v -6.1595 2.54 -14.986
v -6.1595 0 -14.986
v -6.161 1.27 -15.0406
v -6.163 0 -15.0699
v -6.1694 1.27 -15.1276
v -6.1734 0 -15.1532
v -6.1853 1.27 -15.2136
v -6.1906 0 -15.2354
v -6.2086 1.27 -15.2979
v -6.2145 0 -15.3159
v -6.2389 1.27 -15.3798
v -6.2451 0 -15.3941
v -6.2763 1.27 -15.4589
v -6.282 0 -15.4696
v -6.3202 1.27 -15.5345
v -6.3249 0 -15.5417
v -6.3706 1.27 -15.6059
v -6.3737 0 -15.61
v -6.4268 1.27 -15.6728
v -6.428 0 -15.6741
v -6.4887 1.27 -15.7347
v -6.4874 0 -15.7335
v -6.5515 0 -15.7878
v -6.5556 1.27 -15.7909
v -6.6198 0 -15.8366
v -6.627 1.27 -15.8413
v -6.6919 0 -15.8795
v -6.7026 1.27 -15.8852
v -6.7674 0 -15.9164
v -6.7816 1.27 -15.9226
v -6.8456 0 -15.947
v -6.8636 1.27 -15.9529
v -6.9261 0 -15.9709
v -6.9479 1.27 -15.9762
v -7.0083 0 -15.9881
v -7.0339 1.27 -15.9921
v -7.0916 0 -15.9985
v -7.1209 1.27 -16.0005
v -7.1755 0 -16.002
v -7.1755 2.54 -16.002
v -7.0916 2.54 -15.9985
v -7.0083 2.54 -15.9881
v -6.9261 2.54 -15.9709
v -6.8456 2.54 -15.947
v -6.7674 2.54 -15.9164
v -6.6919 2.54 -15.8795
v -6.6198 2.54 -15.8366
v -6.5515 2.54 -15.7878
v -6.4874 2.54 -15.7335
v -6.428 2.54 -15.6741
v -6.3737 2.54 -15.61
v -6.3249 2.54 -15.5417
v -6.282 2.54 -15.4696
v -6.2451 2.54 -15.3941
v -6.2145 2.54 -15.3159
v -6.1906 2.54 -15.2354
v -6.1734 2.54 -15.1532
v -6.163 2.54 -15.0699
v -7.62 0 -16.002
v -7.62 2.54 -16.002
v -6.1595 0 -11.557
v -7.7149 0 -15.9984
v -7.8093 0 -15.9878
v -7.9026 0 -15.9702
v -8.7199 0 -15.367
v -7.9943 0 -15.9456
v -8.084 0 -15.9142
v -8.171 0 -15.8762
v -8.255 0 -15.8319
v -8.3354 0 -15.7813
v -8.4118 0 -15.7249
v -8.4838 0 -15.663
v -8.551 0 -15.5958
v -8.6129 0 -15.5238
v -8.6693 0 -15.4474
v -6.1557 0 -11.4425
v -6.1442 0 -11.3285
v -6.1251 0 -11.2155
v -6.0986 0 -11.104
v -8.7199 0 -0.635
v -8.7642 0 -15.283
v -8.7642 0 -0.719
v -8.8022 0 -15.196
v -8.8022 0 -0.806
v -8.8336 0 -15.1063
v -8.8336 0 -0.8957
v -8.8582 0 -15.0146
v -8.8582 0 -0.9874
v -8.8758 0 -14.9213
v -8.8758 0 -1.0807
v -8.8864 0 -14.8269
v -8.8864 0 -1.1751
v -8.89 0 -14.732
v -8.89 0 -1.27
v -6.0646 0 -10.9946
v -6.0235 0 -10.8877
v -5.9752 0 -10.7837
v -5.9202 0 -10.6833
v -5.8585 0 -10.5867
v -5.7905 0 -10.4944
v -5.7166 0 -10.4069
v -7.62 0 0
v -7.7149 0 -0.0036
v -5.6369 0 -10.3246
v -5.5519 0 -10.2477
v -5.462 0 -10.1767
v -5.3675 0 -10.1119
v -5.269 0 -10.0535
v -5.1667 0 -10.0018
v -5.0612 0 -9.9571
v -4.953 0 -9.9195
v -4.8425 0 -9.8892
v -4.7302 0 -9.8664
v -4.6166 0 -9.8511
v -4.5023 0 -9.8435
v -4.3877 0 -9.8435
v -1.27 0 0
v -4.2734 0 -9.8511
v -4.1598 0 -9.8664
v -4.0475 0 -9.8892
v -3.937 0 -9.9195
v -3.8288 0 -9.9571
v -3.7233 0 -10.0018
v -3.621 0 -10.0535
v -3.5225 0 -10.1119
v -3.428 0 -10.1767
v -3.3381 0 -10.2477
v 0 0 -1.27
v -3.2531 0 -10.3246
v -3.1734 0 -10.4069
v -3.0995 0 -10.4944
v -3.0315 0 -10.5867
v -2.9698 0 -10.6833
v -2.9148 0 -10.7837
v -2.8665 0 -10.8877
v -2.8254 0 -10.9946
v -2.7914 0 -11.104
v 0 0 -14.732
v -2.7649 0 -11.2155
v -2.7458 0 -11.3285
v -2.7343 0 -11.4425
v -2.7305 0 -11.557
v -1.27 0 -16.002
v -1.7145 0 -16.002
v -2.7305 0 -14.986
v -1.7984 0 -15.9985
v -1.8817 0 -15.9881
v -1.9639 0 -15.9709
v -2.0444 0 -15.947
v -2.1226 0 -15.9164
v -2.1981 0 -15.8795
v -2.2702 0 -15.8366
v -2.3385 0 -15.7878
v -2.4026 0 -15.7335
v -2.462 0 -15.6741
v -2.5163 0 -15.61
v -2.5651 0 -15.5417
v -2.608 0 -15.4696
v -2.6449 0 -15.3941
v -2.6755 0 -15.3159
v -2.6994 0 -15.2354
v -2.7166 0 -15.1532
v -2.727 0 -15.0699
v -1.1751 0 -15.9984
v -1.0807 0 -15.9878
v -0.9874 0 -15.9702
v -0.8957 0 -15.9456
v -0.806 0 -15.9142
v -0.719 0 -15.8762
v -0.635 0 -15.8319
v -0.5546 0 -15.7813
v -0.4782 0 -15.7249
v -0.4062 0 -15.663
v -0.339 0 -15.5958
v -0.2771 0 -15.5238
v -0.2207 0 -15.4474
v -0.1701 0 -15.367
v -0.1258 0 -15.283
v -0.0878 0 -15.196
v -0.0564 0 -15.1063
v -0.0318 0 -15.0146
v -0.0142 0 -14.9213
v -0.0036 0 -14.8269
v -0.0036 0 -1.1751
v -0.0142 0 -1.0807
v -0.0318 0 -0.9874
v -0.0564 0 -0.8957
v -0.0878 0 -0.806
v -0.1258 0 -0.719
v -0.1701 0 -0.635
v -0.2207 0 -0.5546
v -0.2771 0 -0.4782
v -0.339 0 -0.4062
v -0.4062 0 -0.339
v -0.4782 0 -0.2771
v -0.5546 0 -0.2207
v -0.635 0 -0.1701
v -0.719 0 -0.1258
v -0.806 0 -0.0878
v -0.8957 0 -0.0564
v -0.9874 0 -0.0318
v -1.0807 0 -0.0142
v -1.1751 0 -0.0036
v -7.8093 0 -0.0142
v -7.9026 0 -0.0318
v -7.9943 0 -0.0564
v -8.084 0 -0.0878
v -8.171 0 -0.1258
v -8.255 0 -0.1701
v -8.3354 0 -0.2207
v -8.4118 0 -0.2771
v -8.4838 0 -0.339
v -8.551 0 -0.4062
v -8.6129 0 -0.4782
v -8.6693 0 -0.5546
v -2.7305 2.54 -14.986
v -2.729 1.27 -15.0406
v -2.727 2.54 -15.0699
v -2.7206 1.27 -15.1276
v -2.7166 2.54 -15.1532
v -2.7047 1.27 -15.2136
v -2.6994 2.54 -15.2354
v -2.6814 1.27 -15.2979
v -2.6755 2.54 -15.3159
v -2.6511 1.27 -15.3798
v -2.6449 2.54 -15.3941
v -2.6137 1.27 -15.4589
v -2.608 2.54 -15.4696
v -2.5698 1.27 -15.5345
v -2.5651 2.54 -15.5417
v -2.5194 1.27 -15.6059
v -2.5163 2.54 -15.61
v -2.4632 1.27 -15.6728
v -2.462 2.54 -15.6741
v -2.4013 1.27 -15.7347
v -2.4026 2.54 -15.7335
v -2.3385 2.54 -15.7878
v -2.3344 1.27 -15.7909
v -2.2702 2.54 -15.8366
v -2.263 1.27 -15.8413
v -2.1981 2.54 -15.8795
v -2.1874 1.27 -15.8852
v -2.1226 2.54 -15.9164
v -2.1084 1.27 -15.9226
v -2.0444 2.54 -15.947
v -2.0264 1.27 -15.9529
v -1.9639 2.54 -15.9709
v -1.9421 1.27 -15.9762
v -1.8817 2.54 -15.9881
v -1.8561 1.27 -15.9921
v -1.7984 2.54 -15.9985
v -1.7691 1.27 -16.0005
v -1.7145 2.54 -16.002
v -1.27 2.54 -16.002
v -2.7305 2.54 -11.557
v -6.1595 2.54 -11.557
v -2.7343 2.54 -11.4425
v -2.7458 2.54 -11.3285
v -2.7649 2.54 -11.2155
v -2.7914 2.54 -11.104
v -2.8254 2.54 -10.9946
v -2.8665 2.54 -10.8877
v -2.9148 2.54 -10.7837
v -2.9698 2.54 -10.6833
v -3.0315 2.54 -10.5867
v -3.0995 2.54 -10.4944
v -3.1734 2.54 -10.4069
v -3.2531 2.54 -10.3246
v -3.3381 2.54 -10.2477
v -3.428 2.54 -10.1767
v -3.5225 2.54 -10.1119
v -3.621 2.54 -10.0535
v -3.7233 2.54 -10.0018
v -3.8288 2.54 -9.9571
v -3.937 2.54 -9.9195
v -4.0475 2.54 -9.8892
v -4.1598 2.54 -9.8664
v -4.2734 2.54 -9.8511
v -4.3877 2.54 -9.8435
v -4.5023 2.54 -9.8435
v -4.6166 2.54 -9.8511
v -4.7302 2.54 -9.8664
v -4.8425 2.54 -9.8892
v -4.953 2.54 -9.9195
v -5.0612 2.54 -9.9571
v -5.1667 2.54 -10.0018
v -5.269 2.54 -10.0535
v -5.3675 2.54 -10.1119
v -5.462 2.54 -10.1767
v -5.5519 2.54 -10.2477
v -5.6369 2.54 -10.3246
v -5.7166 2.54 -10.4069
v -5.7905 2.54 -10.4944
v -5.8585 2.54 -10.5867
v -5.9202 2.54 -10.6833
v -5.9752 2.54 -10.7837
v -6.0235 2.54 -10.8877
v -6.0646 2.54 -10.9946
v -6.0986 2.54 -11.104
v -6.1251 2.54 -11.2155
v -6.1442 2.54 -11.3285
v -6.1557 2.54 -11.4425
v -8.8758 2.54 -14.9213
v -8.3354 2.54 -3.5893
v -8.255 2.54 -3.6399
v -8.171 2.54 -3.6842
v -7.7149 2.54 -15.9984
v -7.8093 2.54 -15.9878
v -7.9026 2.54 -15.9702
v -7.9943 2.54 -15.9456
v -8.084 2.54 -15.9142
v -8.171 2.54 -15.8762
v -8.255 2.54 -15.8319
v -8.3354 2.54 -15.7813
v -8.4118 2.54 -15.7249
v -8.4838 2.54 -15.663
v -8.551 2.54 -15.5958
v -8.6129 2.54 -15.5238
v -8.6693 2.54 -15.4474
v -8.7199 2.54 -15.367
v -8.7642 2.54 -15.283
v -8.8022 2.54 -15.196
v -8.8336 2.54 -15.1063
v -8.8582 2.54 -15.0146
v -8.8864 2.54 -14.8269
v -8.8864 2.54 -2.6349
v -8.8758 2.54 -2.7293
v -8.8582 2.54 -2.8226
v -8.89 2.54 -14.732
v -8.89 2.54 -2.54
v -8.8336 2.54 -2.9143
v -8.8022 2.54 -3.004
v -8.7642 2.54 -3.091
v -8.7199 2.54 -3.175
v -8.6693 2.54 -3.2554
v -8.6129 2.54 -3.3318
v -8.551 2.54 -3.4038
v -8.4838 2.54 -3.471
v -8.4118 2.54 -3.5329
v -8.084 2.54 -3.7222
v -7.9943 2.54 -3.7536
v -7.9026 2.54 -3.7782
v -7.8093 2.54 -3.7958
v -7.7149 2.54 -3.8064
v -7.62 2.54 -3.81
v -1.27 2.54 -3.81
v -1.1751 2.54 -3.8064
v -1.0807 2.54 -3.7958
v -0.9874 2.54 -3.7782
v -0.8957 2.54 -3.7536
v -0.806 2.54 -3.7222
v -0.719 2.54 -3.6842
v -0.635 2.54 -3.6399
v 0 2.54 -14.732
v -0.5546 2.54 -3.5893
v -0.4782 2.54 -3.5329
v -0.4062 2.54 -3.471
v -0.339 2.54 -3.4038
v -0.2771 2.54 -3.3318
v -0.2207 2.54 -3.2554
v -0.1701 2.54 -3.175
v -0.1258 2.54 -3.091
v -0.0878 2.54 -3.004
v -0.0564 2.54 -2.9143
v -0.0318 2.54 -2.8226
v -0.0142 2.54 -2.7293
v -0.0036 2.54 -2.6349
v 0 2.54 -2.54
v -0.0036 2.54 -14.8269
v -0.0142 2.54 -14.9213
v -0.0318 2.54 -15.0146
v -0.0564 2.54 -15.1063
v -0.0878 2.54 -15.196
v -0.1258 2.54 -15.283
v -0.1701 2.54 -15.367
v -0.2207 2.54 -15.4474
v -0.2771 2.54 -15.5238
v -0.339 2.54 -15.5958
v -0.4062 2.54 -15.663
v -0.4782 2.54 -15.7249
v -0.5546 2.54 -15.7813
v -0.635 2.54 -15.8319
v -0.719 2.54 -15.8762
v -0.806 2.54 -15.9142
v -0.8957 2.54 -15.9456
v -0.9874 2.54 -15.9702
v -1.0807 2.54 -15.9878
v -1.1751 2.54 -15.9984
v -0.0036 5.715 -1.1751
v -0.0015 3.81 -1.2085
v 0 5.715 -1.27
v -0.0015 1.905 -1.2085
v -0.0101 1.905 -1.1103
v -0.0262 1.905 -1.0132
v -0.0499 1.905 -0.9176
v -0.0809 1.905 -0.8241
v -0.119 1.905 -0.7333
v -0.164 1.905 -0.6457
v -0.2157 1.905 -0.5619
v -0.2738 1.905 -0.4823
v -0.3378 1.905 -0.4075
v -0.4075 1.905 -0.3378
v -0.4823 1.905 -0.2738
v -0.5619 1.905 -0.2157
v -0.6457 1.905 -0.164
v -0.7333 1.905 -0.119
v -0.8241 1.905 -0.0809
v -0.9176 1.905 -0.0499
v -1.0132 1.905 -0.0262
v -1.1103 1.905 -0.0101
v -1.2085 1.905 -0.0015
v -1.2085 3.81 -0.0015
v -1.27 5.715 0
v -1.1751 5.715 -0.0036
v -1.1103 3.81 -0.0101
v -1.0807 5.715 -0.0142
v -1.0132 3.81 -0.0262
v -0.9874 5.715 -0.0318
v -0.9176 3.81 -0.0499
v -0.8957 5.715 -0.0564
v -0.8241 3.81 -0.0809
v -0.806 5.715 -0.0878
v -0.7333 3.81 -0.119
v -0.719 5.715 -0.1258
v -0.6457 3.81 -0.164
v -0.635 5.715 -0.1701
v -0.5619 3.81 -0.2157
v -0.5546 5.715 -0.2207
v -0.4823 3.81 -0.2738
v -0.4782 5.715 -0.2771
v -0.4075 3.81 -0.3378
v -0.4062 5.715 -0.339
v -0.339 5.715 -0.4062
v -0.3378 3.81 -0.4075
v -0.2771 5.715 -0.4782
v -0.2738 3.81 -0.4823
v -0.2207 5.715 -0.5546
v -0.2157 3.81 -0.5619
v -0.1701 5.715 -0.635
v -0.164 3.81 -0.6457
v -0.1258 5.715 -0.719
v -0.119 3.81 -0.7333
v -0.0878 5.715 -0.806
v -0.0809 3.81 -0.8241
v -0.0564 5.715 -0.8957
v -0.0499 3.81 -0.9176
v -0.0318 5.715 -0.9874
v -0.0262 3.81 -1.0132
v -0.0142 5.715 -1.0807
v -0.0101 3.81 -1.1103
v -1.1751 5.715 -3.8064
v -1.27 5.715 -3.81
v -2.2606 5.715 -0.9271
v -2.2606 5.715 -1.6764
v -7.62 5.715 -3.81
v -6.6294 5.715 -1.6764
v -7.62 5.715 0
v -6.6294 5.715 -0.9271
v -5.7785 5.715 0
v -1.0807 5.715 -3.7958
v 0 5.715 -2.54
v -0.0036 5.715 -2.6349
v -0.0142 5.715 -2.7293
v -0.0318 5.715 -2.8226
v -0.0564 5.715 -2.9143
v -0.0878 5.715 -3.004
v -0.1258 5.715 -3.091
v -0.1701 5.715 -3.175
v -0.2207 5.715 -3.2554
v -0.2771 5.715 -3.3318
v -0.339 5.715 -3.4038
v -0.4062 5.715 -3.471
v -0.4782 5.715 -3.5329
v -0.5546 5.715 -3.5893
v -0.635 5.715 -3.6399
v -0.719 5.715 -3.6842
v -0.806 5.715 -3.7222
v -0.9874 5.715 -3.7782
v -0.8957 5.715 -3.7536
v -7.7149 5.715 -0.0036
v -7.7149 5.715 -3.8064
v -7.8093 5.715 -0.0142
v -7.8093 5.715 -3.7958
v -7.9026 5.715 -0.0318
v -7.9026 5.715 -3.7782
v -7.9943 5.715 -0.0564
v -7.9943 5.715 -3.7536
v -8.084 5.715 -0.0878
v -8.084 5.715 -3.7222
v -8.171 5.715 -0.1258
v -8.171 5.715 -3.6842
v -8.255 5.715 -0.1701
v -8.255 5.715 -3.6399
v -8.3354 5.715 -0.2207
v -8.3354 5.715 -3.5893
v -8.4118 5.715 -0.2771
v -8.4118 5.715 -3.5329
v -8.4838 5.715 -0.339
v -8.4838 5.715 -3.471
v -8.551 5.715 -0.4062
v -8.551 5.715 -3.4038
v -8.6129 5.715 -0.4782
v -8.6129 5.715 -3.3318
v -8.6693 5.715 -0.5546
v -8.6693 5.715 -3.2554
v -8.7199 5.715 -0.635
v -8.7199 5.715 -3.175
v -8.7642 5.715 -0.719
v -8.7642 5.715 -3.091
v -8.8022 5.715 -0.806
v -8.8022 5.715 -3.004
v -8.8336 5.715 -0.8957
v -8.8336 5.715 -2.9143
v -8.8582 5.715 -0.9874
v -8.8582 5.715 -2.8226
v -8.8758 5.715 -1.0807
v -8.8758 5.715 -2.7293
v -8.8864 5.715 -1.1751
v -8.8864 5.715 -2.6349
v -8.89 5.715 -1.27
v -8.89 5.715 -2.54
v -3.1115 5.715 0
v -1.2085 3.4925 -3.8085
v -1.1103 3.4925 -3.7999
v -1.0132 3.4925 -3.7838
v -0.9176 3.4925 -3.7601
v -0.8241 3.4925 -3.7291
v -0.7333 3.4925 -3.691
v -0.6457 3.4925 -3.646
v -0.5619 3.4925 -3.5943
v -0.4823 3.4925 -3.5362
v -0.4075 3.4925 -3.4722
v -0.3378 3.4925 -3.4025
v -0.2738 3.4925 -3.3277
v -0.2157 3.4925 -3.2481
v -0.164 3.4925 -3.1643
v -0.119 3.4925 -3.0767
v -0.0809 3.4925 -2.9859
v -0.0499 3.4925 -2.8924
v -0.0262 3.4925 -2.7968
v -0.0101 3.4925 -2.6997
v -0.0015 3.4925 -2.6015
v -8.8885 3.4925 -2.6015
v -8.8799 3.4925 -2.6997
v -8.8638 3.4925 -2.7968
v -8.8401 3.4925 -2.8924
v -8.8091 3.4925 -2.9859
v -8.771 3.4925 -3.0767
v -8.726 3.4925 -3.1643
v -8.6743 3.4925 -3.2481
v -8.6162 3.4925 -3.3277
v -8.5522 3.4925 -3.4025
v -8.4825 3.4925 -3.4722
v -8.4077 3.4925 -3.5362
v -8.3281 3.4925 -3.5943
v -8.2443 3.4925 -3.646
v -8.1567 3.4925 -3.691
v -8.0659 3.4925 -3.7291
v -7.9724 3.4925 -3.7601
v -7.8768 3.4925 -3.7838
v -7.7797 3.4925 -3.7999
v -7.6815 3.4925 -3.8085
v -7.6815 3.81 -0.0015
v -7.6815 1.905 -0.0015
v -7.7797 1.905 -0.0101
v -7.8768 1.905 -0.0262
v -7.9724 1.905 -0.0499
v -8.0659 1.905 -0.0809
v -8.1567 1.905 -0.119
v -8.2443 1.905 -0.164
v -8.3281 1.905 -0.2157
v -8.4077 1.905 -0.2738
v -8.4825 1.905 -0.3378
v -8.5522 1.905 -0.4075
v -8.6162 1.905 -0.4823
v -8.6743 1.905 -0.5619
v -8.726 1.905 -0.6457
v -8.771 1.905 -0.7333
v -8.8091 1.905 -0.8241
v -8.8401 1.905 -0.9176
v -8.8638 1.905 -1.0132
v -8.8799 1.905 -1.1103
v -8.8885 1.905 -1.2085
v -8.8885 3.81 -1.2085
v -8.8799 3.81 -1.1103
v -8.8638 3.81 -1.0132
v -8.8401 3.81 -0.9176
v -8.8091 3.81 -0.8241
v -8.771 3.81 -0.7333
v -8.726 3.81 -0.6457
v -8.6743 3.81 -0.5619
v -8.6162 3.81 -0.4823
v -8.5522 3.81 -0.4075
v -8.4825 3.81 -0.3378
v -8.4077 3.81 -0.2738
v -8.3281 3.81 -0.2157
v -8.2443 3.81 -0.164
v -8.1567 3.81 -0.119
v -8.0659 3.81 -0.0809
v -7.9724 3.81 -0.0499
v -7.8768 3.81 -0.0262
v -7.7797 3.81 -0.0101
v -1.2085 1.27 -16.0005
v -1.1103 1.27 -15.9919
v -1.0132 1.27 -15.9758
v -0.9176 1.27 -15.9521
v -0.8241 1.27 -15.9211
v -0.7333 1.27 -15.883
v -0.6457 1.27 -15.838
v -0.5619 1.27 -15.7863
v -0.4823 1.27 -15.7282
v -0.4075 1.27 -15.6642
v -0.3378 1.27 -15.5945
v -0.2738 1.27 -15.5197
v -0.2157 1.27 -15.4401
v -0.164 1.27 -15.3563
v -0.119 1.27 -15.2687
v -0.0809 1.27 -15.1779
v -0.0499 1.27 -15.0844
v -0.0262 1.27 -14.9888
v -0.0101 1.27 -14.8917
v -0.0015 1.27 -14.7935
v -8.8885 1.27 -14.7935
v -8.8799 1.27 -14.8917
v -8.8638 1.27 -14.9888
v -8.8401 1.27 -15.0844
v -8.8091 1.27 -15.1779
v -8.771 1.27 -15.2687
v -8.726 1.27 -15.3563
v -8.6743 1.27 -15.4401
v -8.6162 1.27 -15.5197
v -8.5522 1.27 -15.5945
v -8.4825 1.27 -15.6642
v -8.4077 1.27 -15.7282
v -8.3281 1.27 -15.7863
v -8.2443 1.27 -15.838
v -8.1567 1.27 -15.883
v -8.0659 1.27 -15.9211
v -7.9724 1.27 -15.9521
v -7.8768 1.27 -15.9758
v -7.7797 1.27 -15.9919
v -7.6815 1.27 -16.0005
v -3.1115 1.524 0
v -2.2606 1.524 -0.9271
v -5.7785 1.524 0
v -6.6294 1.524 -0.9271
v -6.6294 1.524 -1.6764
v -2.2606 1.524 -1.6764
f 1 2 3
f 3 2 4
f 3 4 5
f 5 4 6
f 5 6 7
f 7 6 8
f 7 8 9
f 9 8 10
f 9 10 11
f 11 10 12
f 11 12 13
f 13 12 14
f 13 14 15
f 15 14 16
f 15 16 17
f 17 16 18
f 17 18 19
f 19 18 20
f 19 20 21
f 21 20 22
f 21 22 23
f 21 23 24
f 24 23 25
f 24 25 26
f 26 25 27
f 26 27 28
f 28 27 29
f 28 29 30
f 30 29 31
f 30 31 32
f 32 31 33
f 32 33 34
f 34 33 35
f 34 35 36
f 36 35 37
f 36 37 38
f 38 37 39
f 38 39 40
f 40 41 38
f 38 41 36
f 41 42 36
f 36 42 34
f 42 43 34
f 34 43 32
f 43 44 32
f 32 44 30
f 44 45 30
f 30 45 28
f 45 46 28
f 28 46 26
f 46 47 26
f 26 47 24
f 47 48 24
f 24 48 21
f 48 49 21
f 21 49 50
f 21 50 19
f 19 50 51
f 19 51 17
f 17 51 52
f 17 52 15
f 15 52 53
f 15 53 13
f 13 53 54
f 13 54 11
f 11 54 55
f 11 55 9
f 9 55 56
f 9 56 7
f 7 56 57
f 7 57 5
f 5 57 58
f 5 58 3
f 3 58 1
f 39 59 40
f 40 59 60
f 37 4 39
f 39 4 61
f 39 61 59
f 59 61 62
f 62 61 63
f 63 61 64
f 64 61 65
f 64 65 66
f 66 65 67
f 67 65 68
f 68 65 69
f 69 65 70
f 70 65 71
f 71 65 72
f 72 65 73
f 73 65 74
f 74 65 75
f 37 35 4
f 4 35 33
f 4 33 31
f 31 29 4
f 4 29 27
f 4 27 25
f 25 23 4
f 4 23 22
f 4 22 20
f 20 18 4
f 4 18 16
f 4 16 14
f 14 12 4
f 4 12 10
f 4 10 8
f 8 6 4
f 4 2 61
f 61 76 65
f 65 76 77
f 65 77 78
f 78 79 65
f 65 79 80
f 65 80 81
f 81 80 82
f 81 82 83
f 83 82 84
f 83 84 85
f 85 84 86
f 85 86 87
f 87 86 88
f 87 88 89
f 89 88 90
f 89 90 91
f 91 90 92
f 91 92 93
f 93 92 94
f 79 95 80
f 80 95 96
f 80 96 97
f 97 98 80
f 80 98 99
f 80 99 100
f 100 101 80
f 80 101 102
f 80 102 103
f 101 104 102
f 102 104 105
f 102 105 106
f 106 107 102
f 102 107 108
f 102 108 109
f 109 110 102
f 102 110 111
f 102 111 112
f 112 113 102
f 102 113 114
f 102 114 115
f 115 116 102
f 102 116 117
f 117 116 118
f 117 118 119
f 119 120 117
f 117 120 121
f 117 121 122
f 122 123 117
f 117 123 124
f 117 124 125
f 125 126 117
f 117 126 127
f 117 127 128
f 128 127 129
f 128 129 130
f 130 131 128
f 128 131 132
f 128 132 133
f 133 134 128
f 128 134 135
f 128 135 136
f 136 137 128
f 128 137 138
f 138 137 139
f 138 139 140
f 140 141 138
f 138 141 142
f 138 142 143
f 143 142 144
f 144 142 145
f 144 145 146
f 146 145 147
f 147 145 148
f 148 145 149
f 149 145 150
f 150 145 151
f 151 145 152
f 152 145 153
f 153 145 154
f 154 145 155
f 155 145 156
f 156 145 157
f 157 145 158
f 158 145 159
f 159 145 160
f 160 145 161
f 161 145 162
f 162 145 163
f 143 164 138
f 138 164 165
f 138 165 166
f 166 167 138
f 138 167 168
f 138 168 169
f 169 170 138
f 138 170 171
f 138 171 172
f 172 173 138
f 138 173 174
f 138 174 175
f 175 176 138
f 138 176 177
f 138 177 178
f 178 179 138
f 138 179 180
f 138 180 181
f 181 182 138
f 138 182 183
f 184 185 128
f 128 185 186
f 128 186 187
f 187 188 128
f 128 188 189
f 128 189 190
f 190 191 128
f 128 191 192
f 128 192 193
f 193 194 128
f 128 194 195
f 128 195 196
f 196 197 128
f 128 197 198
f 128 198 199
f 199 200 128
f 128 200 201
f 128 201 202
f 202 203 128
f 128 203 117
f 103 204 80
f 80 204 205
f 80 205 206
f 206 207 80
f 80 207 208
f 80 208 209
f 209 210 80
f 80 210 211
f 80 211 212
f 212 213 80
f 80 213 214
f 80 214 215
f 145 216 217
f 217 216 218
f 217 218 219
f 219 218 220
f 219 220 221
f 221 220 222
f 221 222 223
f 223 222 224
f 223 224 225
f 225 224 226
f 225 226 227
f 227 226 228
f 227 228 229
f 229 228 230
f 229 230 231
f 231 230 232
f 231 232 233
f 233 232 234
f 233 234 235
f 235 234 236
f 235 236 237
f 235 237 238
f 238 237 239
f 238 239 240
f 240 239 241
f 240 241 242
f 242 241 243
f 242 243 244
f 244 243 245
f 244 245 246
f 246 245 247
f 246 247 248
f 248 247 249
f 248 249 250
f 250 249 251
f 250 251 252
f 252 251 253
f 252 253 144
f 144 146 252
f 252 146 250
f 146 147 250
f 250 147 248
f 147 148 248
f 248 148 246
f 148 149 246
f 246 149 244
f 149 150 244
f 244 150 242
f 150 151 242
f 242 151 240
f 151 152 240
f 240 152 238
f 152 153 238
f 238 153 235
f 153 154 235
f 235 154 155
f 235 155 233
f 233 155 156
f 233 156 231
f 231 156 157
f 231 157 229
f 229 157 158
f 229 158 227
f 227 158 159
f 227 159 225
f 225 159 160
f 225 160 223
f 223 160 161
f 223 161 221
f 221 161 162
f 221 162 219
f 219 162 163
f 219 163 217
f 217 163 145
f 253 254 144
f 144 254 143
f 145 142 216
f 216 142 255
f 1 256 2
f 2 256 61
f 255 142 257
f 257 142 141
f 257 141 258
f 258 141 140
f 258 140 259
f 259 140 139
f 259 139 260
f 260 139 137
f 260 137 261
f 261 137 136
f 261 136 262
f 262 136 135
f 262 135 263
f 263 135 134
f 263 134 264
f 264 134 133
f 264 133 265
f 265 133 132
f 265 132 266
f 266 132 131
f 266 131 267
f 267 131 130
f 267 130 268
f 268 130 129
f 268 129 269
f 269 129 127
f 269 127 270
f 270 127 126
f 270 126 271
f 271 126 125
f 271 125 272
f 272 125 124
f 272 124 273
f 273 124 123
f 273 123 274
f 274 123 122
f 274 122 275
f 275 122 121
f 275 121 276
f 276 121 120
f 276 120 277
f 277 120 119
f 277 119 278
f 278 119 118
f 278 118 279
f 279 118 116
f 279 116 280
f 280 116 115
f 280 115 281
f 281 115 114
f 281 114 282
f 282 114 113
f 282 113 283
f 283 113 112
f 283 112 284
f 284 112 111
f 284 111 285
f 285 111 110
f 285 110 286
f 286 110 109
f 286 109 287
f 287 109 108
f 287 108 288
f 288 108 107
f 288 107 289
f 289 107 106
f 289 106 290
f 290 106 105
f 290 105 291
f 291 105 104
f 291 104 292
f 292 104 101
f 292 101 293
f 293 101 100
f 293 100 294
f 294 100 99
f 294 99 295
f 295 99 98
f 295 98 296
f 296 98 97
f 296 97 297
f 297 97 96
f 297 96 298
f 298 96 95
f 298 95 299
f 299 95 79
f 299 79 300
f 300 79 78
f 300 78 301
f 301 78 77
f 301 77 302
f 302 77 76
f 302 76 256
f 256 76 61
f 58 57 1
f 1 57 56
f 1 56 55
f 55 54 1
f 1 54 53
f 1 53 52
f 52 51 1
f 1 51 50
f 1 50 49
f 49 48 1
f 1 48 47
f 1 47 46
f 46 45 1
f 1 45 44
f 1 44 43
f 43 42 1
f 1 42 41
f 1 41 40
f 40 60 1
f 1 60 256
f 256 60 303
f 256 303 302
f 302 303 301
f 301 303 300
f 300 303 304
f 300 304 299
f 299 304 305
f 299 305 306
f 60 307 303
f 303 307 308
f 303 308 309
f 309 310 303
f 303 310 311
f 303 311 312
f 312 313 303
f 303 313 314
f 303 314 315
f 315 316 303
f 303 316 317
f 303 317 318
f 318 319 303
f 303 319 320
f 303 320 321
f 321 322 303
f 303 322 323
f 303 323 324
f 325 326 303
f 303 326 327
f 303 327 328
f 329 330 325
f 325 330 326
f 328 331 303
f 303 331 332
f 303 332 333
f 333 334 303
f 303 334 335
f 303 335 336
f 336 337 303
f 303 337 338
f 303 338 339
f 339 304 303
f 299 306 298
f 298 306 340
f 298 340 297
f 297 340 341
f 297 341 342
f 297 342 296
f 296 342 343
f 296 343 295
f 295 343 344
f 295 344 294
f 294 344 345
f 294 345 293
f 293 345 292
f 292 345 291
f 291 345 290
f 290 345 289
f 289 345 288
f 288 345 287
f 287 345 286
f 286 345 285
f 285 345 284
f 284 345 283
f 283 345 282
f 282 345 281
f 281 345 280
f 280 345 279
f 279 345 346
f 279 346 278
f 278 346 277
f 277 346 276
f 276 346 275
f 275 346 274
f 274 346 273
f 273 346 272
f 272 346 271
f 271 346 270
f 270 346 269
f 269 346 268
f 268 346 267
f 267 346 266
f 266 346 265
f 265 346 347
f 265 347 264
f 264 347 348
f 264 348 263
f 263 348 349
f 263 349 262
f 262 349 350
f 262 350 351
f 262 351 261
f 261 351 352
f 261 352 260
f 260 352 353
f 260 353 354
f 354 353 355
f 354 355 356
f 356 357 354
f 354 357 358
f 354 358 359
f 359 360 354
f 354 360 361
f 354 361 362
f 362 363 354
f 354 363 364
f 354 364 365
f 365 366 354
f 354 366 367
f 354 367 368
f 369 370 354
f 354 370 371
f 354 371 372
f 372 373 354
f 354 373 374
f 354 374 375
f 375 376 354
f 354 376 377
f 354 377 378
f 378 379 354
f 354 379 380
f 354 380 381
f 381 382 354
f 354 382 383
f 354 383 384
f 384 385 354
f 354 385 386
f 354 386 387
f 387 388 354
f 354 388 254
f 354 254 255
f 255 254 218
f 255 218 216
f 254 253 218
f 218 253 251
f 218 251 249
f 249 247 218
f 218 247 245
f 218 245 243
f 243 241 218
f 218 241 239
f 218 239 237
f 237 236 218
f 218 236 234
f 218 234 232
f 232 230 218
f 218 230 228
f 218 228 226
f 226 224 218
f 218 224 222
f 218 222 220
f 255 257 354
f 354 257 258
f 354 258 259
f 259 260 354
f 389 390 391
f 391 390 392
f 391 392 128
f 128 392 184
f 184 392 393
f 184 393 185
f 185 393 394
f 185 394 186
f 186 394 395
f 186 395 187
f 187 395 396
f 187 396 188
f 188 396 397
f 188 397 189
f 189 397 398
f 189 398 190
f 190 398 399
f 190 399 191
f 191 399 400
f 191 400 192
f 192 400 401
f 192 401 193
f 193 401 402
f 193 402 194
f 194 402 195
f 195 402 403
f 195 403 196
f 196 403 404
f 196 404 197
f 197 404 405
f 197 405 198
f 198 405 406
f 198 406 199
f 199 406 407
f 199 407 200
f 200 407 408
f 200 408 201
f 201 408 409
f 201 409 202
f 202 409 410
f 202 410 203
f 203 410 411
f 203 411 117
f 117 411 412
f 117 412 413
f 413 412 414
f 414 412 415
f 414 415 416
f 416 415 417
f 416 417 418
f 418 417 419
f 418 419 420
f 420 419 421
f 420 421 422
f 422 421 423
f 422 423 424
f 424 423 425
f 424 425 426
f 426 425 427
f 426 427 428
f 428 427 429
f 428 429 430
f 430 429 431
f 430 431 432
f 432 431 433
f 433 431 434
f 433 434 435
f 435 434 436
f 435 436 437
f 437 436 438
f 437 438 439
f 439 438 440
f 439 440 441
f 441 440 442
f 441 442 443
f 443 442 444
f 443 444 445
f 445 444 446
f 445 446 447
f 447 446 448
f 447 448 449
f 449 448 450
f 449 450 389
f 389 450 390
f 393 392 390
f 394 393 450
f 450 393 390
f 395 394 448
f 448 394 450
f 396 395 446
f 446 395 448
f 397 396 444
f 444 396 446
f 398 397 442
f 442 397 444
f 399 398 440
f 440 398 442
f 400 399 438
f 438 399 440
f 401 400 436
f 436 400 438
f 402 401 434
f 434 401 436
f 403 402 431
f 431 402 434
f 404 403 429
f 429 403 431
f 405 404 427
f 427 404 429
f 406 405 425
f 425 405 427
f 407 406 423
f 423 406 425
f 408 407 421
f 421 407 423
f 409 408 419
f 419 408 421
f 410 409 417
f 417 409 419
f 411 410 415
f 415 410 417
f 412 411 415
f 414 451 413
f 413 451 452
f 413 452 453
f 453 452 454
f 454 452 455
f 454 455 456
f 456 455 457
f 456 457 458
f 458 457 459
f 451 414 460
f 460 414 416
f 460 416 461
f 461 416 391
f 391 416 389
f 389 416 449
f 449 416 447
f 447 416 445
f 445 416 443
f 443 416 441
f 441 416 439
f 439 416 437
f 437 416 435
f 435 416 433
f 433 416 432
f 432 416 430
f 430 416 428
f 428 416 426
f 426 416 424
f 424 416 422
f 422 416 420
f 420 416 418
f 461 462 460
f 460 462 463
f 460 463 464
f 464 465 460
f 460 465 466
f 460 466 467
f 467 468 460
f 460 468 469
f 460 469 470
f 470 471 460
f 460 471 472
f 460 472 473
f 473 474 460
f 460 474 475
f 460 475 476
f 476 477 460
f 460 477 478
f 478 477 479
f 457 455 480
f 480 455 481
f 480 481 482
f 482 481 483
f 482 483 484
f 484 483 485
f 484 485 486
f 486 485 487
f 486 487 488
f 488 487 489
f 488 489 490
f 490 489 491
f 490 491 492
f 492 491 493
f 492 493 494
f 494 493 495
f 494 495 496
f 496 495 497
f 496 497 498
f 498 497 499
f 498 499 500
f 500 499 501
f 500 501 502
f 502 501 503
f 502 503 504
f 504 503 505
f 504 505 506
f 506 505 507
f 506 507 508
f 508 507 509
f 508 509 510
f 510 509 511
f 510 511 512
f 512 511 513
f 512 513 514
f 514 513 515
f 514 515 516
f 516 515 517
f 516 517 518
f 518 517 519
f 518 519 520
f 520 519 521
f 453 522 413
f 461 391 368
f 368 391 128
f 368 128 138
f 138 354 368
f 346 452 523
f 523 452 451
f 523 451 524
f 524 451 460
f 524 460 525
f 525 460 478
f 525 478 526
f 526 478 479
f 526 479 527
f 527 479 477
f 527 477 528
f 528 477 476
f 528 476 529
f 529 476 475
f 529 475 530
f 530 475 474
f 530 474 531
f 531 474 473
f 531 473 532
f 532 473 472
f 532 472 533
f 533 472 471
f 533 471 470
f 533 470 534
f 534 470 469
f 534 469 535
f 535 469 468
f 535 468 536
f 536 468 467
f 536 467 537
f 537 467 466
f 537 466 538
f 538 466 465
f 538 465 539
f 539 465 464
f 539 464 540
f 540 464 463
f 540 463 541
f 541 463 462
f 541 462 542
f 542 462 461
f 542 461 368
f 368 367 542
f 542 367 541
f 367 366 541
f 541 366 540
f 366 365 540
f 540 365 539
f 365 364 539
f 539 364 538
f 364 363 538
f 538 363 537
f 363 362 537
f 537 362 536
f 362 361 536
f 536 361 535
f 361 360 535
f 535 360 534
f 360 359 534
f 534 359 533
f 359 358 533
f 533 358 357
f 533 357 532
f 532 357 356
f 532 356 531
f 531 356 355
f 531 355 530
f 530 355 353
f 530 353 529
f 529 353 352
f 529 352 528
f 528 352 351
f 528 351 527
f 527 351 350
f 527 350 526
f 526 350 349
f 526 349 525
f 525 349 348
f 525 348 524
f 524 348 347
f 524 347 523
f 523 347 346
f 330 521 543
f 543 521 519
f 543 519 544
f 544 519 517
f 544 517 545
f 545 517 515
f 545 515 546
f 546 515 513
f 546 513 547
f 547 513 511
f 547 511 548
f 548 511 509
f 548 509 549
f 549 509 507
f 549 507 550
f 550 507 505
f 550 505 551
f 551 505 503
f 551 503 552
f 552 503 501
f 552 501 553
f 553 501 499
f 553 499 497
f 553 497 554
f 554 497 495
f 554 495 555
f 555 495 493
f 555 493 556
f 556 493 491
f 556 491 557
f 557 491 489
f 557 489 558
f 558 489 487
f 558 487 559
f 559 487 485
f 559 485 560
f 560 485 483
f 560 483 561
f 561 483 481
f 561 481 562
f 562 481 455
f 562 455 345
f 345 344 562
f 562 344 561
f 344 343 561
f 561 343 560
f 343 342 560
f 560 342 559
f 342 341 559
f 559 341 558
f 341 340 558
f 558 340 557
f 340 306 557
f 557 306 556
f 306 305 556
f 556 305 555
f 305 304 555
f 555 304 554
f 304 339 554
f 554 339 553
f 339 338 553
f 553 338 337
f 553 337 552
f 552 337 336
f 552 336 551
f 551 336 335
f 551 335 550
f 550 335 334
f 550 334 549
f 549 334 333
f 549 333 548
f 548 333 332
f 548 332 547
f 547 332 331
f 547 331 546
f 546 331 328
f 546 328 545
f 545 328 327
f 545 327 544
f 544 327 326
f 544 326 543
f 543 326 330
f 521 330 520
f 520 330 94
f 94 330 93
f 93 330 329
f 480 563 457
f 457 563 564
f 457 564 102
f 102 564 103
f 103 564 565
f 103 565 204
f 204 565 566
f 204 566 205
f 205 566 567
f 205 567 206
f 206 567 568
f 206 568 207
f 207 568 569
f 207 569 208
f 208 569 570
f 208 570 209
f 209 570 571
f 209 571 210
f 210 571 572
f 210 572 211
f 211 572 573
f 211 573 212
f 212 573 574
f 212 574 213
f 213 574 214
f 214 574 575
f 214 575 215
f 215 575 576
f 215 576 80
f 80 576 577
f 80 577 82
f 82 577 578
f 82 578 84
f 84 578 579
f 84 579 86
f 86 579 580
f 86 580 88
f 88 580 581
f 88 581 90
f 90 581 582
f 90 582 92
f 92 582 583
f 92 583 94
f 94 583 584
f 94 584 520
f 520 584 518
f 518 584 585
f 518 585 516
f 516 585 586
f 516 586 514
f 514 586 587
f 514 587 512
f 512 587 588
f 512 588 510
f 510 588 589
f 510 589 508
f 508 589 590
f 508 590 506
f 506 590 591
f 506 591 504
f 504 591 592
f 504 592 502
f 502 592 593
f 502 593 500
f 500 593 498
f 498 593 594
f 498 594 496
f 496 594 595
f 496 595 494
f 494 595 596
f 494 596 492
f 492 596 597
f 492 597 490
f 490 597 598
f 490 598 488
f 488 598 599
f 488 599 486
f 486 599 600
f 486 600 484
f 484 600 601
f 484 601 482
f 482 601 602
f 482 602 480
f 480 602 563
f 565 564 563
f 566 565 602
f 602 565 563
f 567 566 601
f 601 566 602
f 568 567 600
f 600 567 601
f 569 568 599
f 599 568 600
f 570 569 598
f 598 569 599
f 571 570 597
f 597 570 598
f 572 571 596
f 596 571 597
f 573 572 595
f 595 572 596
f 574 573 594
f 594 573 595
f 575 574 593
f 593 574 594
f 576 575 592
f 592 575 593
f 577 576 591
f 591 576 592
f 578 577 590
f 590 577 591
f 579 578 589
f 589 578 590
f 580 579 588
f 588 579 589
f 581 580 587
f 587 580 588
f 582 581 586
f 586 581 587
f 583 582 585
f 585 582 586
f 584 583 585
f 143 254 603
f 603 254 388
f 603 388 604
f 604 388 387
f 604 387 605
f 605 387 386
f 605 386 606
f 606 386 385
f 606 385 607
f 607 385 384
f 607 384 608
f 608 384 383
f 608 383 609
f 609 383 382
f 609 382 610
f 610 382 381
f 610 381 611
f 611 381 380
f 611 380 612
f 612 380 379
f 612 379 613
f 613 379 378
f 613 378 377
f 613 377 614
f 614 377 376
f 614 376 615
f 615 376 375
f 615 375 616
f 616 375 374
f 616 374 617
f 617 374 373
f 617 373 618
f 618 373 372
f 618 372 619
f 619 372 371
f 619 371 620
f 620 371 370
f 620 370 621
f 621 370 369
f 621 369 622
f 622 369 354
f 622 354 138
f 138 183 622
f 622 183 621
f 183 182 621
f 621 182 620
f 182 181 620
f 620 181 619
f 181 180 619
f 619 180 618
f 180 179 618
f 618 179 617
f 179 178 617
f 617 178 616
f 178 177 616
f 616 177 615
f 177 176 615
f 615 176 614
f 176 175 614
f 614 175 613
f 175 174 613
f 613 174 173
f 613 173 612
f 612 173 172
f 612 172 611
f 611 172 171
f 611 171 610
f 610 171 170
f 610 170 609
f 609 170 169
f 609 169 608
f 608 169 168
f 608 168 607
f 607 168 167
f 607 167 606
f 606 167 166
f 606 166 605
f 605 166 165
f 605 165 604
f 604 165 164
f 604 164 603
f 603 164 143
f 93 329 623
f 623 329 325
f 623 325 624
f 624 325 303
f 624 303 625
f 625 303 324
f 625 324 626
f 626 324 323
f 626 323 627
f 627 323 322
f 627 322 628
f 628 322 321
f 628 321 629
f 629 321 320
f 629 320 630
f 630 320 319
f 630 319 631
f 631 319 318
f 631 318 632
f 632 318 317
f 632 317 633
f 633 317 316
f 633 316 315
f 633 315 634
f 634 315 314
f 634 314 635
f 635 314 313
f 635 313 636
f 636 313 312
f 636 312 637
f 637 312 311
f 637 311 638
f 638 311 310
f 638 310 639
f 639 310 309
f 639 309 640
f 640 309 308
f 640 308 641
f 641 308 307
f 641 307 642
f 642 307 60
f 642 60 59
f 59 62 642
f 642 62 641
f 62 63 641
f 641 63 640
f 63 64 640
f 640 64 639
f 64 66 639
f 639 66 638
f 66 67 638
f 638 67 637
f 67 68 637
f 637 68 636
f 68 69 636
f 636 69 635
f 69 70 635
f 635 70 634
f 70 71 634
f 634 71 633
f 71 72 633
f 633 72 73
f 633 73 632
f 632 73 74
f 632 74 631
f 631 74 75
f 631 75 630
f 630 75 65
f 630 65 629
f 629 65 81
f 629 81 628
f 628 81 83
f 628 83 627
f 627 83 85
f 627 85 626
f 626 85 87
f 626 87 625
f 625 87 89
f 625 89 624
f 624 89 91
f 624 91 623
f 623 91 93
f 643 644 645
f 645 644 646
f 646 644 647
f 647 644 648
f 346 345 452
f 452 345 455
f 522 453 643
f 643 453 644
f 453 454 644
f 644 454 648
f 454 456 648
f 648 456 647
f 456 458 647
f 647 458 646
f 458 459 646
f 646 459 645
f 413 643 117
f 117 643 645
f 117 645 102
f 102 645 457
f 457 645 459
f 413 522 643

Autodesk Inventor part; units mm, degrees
ref_plane "YZ Plane" through (0, 0, 0) normal (1, 0, 0) x (0, 1, 0)
ref_plane "XZ Plane" through (0, 0, 0) normal (0, 1, 0) x (-1, 0, 0)
ref_plane "XY Plane" through (0, 0, 0) normal (0, 0, 1) x (1, 0, 0)
sketch "Sketch1" plane through (0, 0, 0) normal (0, 1, 0) x (-1, 0, 0)
  line L0 (0, 0) -> (8.89, 0)
  line L1 (8.89, 0) -> (8.89, -16.002)
  line L2 (8.89, -16.002) -> (0, -16.002)
  line L3 (0, -16.002) -> (0, 0)
  dimension "d0" = 8.89
  dimension "d1" = 16.002
extrude "Extrusion1" add sketch "Sketch1" along normal blind 2.54
sketch "Sketch5" plane through (0, 2.54, 0) normal (0, 1, 0) x (1, 0, 0)
  line L0 (-8.89, 0) -> (0, 0) projected
  line L1 (0, 0) -> (0, 16.002) projected
  line L2 (0, 16.002) -> (-8.89, 16.002) projected
  line L3 (-8.89, 16.002) -> (-8.89, 0) projected
  line L4 (0, 0) -> (-8.89, 0) projected
  line L5 (-5.7785, 0) -> (-6.6294, 0.9271)
  line L6 (-6.6294, 0.9271) -> (-6.6294, 1.6764)
  line L7 (-6.6294, 1.6764) -> (-2.2606, 1.6764)
  line L8 (-2.2606, 1.6764) -> (-2.2606, 0.9271)
  line L9 (-2.2606, 0.9271) -> (-3.1115, 0)
  line L10 (-8.89, 0) -> (-8.89, 16.002) projected
  line L11 (-8.89, 3.81) -> (0, 3.81)
  point P0 (-4.445, 1.6764)
  point P1 (-4.445, 3.81)
  dimension "d19" = 2.667
  dimension "d20" = 4.3688
  dimension "d21" = 0.9271
  dimension "d23" = 1.6764
  dimension "d24" = 3.81
extrude "Extrusion4" add sketch "Sketch5" along normal blind 3.175 contours L3 L11 L1 L0 L9 L8 L7 L6 L5
sketch "Sketch6" plane through (0, 2.54, 0) normal (0, 1, 0) x (1, 0, 0)
  line L0 (-3.1115, 0) -> (-2.2606, 0.9271) projected
  line L1 (-2.2606, 0.9271) -> (-2.2606, 1.6764) projected
  line L2 (-2.2606, 1.6764) -> (-6.6294, 1.6764) projected
  line L3 (-6.6294, 1.6764) -> (-6.6294, 0.9271) projected
  line L4 (-6.6294, 0.9271) -> (-5.7785, 0) projected
  line L5 (-5.7785, 0) -> (-3.1115, 0) projected
  point P0 (0, 0)
extrude "Extrusion5" cut sketch "Sketch6" against normal blind 1.016
fillet "Fillet3" radius 1.27 6 edges at (-8.89, 1.27, -16.002) (0, 1.27, -16.002) (-8.89, 2.8575, 0) (-8.89, 4.1275, -3.81) (0, 4.1275, -3.81) (0, 2.8575, 0)
sketch "Sketch8" plane through (0, 2.54, 0) normal (0, 1, 0) x (1, 0, 0)
  line L0 (-7.62, 16.002) -> (-1.27, 16.002) projected
  line L1 (-6.1595, 16.002) -> (-6.1595, 11.557)
  line L2 (-2.7305, 16.002) -> (-2.7305, 11.557)
  arc A0 (-6.1595, 11.557) -> (-2.7305, 11.557) centre (-4.445, 11.557) ccw
  point P0 (0, 0)
  point P1 (-4.445, 16.002)
  dimension "d37" = 3.429
  dimension "d38" = 4.445
extrude "Extrusion7" cut sketch "Sketch8" against normal blind 25.4
fillet "Fillet4" radius 1.016 2 edges at (-2.7305, 1.27, -16.002) (-6.1595, 1.27, -16.002)
properties part number "HallEffectSpoolSensorMount2" material "ABS Plastic"
